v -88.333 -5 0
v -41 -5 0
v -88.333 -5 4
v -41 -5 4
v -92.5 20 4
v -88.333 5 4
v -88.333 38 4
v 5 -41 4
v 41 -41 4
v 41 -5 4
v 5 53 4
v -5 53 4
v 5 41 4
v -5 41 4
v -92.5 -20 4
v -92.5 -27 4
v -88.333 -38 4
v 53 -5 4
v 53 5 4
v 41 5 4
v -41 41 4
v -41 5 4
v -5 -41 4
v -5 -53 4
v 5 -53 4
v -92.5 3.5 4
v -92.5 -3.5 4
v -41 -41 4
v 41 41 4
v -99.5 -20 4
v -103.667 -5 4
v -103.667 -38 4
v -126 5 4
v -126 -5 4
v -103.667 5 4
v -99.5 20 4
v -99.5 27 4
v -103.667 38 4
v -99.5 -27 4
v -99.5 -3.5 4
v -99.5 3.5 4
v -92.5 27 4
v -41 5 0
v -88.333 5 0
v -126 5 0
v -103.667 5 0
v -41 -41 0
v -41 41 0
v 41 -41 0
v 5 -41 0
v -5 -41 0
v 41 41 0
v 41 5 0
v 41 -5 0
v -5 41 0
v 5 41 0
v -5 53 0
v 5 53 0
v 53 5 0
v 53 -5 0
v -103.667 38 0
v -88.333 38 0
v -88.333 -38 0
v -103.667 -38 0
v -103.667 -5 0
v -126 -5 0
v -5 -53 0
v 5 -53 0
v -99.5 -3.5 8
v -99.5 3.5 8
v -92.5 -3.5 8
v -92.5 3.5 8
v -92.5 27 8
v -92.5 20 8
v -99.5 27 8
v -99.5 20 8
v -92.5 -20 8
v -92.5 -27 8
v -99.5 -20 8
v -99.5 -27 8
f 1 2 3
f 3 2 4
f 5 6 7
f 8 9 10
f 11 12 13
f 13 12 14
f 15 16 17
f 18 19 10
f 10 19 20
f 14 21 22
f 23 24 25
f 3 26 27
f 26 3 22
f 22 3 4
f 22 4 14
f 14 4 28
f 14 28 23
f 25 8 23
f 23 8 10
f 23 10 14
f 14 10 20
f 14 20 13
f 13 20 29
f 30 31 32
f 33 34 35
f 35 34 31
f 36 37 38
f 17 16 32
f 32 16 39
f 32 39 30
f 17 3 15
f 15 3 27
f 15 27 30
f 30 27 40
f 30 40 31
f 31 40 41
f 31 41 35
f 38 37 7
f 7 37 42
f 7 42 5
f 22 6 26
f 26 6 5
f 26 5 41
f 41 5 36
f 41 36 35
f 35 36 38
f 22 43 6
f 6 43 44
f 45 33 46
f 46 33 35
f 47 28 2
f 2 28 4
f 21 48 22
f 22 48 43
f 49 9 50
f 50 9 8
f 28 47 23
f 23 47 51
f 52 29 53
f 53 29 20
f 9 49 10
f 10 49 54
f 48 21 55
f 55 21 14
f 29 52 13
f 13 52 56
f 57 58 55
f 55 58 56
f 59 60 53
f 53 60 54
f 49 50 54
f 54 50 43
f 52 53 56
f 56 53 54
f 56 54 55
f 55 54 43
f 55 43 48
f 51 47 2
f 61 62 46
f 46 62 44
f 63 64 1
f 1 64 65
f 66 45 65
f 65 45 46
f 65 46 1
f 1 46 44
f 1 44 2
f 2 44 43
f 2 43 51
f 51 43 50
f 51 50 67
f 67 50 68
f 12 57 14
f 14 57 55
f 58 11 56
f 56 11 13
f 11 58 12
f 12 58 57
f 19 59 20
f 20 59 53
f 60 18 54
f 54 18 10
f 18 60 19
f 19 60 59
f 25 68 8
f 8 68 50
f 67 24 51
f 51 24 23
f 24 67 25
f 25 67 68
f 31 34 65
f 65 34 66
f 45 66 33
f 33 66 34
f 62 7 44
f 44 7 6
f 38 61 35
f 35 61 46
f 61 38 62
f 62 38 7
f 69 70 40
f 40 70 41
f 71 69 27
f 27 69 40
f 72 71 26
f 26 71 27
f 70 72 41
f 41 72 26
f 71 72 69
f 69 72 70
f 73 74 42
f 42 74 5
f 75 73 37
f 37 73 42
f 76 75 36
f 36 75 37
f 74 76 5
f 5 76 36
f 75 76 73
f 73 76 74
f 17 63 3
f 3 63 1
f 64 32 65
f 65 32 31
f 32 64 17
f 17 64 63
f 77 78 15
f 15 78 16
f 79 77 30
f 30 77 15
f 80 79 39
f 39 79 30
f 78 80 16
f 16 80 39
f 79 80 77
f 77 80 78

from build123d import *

# Parameters (mm, degrees)
SKETCH1_W           = 82
SKETCH1_H           = 82
BOSS_EXTRUDE3_DEPTH = 4
SKETCH6_W           = 10
SKETCH6_H           = 4
BOSS_EXTRUDE4_DEPTH = 12
CIRPATTERN1_COUNT   = 3
CIRPATTERN1_ANGLE   = 180
SKETCH8_W           = 4
SKETCH8_H           = 10
BOSS_EXTRUDE5_DEPTH = 85
SKETCH12_W          = 15.333160426
SKETCH12_H          = 4
BOSS_EXTRUDE6_DEPTH = 33
SKETCH9_W           = 7
SKETCH9_H           = 7
BOSS_EXTRUDE7_DEPTH = 4
SKETCH13_W          = 7
SKETCH13_H          = 7
BOSS_EXTRUDE8_DEPTH = 4


with BuildPart() as part:
    # Sketch1 → Boss-Extrude3 (new body)
    with BuildSketch(Plane.XY):
        Rectangle(SKETCH1_W, SKETCH1_H)
    extrude(amount=BOSS_EXTRUDE3_DEPTH)

    # Sketch6 → Boss-Extrude4 (add)
    with BuildSketch(Plane(origin=(0, 41, 0), x_dir=(1, 0, 0), z_dir=(0, 1, 0))):
        with Locations((0, -2)):
            Rectangle(SKETCH6_W, SKETCH6_H)
    boss_extrude4 = extrude(amount=BOSS_EXTRUDE4_DEPTH)

    # CirPattern1: Boss-Extrude4 ×3 about axis
    cirpattern1_axis = Axis((0, 0, 4.2), (0, 0, -1))
    for i in range(1, CIRPATTERN1_COUNT):
        add(boss_extrude4.rotate(cirpattern1_axis, i * CIRPATTERN1_ANGLE / (CIRPATTERN1_COUNT - 1)))

    # Sketch8 → Boss-Extrude5 (add)
    with BuildSketch(Plane.ZY.offset(41)):
        with Locations((2, 0)):
            Rectangle(SKETCH8_W, SKETCH8_H)
    extrude(amount=BOSS_EXTRUDE5_DEPTH)

    # Sketch12 → Boss-Extrude6 (add)
    with BuildSketch(Plane(origin=(0, 5, 0), x_dir=(1, 0, 0), z_dir=(0, 1, 0))):
        with Locations((-96, -2)):
            Rectangle(SKETCH12_W, SKETCH12_H)
    boss_extrude6 = extrude(amount=BOSS_EXTRUDE6_DEPTH)

    # Sketch9 → Boss-Extrude7 (add)
    with BuildSketch(Plane.XY.offset(4)):
        with Locations((-96, 0)):
            Rectangle(SKETCH9_W, SKETCH9_H)
    extrude(amount=BOSS_EXTRUDE7_DEPTH)

    # Sketch13 → Boss-Extrude8 (add)
    with BuildSketch(Plane.XY.offset(4)):
        with Locations((-96, 23.5)):
            Rectangle(SKETCH13_W, SKETCH13_H)
    boss_extrude8 = extrude(amount=BOSS_EXTRUDE8_DEPTH)

    # Mirror2: Boss-Extrude6, Boss-Extrude8 across plane
    add(boss_extrude6.mirror(Plane(origin=(0, 0, 0), x_dir=(0, 0, 1), z_dir=(0, -1, 0))))
    add(boss_extrude8.mirror(Plane(origin=(0, 0, 0), x_dir=(0, 0, 1), z_dir=(0, -1, 0))))


solid = part.part
